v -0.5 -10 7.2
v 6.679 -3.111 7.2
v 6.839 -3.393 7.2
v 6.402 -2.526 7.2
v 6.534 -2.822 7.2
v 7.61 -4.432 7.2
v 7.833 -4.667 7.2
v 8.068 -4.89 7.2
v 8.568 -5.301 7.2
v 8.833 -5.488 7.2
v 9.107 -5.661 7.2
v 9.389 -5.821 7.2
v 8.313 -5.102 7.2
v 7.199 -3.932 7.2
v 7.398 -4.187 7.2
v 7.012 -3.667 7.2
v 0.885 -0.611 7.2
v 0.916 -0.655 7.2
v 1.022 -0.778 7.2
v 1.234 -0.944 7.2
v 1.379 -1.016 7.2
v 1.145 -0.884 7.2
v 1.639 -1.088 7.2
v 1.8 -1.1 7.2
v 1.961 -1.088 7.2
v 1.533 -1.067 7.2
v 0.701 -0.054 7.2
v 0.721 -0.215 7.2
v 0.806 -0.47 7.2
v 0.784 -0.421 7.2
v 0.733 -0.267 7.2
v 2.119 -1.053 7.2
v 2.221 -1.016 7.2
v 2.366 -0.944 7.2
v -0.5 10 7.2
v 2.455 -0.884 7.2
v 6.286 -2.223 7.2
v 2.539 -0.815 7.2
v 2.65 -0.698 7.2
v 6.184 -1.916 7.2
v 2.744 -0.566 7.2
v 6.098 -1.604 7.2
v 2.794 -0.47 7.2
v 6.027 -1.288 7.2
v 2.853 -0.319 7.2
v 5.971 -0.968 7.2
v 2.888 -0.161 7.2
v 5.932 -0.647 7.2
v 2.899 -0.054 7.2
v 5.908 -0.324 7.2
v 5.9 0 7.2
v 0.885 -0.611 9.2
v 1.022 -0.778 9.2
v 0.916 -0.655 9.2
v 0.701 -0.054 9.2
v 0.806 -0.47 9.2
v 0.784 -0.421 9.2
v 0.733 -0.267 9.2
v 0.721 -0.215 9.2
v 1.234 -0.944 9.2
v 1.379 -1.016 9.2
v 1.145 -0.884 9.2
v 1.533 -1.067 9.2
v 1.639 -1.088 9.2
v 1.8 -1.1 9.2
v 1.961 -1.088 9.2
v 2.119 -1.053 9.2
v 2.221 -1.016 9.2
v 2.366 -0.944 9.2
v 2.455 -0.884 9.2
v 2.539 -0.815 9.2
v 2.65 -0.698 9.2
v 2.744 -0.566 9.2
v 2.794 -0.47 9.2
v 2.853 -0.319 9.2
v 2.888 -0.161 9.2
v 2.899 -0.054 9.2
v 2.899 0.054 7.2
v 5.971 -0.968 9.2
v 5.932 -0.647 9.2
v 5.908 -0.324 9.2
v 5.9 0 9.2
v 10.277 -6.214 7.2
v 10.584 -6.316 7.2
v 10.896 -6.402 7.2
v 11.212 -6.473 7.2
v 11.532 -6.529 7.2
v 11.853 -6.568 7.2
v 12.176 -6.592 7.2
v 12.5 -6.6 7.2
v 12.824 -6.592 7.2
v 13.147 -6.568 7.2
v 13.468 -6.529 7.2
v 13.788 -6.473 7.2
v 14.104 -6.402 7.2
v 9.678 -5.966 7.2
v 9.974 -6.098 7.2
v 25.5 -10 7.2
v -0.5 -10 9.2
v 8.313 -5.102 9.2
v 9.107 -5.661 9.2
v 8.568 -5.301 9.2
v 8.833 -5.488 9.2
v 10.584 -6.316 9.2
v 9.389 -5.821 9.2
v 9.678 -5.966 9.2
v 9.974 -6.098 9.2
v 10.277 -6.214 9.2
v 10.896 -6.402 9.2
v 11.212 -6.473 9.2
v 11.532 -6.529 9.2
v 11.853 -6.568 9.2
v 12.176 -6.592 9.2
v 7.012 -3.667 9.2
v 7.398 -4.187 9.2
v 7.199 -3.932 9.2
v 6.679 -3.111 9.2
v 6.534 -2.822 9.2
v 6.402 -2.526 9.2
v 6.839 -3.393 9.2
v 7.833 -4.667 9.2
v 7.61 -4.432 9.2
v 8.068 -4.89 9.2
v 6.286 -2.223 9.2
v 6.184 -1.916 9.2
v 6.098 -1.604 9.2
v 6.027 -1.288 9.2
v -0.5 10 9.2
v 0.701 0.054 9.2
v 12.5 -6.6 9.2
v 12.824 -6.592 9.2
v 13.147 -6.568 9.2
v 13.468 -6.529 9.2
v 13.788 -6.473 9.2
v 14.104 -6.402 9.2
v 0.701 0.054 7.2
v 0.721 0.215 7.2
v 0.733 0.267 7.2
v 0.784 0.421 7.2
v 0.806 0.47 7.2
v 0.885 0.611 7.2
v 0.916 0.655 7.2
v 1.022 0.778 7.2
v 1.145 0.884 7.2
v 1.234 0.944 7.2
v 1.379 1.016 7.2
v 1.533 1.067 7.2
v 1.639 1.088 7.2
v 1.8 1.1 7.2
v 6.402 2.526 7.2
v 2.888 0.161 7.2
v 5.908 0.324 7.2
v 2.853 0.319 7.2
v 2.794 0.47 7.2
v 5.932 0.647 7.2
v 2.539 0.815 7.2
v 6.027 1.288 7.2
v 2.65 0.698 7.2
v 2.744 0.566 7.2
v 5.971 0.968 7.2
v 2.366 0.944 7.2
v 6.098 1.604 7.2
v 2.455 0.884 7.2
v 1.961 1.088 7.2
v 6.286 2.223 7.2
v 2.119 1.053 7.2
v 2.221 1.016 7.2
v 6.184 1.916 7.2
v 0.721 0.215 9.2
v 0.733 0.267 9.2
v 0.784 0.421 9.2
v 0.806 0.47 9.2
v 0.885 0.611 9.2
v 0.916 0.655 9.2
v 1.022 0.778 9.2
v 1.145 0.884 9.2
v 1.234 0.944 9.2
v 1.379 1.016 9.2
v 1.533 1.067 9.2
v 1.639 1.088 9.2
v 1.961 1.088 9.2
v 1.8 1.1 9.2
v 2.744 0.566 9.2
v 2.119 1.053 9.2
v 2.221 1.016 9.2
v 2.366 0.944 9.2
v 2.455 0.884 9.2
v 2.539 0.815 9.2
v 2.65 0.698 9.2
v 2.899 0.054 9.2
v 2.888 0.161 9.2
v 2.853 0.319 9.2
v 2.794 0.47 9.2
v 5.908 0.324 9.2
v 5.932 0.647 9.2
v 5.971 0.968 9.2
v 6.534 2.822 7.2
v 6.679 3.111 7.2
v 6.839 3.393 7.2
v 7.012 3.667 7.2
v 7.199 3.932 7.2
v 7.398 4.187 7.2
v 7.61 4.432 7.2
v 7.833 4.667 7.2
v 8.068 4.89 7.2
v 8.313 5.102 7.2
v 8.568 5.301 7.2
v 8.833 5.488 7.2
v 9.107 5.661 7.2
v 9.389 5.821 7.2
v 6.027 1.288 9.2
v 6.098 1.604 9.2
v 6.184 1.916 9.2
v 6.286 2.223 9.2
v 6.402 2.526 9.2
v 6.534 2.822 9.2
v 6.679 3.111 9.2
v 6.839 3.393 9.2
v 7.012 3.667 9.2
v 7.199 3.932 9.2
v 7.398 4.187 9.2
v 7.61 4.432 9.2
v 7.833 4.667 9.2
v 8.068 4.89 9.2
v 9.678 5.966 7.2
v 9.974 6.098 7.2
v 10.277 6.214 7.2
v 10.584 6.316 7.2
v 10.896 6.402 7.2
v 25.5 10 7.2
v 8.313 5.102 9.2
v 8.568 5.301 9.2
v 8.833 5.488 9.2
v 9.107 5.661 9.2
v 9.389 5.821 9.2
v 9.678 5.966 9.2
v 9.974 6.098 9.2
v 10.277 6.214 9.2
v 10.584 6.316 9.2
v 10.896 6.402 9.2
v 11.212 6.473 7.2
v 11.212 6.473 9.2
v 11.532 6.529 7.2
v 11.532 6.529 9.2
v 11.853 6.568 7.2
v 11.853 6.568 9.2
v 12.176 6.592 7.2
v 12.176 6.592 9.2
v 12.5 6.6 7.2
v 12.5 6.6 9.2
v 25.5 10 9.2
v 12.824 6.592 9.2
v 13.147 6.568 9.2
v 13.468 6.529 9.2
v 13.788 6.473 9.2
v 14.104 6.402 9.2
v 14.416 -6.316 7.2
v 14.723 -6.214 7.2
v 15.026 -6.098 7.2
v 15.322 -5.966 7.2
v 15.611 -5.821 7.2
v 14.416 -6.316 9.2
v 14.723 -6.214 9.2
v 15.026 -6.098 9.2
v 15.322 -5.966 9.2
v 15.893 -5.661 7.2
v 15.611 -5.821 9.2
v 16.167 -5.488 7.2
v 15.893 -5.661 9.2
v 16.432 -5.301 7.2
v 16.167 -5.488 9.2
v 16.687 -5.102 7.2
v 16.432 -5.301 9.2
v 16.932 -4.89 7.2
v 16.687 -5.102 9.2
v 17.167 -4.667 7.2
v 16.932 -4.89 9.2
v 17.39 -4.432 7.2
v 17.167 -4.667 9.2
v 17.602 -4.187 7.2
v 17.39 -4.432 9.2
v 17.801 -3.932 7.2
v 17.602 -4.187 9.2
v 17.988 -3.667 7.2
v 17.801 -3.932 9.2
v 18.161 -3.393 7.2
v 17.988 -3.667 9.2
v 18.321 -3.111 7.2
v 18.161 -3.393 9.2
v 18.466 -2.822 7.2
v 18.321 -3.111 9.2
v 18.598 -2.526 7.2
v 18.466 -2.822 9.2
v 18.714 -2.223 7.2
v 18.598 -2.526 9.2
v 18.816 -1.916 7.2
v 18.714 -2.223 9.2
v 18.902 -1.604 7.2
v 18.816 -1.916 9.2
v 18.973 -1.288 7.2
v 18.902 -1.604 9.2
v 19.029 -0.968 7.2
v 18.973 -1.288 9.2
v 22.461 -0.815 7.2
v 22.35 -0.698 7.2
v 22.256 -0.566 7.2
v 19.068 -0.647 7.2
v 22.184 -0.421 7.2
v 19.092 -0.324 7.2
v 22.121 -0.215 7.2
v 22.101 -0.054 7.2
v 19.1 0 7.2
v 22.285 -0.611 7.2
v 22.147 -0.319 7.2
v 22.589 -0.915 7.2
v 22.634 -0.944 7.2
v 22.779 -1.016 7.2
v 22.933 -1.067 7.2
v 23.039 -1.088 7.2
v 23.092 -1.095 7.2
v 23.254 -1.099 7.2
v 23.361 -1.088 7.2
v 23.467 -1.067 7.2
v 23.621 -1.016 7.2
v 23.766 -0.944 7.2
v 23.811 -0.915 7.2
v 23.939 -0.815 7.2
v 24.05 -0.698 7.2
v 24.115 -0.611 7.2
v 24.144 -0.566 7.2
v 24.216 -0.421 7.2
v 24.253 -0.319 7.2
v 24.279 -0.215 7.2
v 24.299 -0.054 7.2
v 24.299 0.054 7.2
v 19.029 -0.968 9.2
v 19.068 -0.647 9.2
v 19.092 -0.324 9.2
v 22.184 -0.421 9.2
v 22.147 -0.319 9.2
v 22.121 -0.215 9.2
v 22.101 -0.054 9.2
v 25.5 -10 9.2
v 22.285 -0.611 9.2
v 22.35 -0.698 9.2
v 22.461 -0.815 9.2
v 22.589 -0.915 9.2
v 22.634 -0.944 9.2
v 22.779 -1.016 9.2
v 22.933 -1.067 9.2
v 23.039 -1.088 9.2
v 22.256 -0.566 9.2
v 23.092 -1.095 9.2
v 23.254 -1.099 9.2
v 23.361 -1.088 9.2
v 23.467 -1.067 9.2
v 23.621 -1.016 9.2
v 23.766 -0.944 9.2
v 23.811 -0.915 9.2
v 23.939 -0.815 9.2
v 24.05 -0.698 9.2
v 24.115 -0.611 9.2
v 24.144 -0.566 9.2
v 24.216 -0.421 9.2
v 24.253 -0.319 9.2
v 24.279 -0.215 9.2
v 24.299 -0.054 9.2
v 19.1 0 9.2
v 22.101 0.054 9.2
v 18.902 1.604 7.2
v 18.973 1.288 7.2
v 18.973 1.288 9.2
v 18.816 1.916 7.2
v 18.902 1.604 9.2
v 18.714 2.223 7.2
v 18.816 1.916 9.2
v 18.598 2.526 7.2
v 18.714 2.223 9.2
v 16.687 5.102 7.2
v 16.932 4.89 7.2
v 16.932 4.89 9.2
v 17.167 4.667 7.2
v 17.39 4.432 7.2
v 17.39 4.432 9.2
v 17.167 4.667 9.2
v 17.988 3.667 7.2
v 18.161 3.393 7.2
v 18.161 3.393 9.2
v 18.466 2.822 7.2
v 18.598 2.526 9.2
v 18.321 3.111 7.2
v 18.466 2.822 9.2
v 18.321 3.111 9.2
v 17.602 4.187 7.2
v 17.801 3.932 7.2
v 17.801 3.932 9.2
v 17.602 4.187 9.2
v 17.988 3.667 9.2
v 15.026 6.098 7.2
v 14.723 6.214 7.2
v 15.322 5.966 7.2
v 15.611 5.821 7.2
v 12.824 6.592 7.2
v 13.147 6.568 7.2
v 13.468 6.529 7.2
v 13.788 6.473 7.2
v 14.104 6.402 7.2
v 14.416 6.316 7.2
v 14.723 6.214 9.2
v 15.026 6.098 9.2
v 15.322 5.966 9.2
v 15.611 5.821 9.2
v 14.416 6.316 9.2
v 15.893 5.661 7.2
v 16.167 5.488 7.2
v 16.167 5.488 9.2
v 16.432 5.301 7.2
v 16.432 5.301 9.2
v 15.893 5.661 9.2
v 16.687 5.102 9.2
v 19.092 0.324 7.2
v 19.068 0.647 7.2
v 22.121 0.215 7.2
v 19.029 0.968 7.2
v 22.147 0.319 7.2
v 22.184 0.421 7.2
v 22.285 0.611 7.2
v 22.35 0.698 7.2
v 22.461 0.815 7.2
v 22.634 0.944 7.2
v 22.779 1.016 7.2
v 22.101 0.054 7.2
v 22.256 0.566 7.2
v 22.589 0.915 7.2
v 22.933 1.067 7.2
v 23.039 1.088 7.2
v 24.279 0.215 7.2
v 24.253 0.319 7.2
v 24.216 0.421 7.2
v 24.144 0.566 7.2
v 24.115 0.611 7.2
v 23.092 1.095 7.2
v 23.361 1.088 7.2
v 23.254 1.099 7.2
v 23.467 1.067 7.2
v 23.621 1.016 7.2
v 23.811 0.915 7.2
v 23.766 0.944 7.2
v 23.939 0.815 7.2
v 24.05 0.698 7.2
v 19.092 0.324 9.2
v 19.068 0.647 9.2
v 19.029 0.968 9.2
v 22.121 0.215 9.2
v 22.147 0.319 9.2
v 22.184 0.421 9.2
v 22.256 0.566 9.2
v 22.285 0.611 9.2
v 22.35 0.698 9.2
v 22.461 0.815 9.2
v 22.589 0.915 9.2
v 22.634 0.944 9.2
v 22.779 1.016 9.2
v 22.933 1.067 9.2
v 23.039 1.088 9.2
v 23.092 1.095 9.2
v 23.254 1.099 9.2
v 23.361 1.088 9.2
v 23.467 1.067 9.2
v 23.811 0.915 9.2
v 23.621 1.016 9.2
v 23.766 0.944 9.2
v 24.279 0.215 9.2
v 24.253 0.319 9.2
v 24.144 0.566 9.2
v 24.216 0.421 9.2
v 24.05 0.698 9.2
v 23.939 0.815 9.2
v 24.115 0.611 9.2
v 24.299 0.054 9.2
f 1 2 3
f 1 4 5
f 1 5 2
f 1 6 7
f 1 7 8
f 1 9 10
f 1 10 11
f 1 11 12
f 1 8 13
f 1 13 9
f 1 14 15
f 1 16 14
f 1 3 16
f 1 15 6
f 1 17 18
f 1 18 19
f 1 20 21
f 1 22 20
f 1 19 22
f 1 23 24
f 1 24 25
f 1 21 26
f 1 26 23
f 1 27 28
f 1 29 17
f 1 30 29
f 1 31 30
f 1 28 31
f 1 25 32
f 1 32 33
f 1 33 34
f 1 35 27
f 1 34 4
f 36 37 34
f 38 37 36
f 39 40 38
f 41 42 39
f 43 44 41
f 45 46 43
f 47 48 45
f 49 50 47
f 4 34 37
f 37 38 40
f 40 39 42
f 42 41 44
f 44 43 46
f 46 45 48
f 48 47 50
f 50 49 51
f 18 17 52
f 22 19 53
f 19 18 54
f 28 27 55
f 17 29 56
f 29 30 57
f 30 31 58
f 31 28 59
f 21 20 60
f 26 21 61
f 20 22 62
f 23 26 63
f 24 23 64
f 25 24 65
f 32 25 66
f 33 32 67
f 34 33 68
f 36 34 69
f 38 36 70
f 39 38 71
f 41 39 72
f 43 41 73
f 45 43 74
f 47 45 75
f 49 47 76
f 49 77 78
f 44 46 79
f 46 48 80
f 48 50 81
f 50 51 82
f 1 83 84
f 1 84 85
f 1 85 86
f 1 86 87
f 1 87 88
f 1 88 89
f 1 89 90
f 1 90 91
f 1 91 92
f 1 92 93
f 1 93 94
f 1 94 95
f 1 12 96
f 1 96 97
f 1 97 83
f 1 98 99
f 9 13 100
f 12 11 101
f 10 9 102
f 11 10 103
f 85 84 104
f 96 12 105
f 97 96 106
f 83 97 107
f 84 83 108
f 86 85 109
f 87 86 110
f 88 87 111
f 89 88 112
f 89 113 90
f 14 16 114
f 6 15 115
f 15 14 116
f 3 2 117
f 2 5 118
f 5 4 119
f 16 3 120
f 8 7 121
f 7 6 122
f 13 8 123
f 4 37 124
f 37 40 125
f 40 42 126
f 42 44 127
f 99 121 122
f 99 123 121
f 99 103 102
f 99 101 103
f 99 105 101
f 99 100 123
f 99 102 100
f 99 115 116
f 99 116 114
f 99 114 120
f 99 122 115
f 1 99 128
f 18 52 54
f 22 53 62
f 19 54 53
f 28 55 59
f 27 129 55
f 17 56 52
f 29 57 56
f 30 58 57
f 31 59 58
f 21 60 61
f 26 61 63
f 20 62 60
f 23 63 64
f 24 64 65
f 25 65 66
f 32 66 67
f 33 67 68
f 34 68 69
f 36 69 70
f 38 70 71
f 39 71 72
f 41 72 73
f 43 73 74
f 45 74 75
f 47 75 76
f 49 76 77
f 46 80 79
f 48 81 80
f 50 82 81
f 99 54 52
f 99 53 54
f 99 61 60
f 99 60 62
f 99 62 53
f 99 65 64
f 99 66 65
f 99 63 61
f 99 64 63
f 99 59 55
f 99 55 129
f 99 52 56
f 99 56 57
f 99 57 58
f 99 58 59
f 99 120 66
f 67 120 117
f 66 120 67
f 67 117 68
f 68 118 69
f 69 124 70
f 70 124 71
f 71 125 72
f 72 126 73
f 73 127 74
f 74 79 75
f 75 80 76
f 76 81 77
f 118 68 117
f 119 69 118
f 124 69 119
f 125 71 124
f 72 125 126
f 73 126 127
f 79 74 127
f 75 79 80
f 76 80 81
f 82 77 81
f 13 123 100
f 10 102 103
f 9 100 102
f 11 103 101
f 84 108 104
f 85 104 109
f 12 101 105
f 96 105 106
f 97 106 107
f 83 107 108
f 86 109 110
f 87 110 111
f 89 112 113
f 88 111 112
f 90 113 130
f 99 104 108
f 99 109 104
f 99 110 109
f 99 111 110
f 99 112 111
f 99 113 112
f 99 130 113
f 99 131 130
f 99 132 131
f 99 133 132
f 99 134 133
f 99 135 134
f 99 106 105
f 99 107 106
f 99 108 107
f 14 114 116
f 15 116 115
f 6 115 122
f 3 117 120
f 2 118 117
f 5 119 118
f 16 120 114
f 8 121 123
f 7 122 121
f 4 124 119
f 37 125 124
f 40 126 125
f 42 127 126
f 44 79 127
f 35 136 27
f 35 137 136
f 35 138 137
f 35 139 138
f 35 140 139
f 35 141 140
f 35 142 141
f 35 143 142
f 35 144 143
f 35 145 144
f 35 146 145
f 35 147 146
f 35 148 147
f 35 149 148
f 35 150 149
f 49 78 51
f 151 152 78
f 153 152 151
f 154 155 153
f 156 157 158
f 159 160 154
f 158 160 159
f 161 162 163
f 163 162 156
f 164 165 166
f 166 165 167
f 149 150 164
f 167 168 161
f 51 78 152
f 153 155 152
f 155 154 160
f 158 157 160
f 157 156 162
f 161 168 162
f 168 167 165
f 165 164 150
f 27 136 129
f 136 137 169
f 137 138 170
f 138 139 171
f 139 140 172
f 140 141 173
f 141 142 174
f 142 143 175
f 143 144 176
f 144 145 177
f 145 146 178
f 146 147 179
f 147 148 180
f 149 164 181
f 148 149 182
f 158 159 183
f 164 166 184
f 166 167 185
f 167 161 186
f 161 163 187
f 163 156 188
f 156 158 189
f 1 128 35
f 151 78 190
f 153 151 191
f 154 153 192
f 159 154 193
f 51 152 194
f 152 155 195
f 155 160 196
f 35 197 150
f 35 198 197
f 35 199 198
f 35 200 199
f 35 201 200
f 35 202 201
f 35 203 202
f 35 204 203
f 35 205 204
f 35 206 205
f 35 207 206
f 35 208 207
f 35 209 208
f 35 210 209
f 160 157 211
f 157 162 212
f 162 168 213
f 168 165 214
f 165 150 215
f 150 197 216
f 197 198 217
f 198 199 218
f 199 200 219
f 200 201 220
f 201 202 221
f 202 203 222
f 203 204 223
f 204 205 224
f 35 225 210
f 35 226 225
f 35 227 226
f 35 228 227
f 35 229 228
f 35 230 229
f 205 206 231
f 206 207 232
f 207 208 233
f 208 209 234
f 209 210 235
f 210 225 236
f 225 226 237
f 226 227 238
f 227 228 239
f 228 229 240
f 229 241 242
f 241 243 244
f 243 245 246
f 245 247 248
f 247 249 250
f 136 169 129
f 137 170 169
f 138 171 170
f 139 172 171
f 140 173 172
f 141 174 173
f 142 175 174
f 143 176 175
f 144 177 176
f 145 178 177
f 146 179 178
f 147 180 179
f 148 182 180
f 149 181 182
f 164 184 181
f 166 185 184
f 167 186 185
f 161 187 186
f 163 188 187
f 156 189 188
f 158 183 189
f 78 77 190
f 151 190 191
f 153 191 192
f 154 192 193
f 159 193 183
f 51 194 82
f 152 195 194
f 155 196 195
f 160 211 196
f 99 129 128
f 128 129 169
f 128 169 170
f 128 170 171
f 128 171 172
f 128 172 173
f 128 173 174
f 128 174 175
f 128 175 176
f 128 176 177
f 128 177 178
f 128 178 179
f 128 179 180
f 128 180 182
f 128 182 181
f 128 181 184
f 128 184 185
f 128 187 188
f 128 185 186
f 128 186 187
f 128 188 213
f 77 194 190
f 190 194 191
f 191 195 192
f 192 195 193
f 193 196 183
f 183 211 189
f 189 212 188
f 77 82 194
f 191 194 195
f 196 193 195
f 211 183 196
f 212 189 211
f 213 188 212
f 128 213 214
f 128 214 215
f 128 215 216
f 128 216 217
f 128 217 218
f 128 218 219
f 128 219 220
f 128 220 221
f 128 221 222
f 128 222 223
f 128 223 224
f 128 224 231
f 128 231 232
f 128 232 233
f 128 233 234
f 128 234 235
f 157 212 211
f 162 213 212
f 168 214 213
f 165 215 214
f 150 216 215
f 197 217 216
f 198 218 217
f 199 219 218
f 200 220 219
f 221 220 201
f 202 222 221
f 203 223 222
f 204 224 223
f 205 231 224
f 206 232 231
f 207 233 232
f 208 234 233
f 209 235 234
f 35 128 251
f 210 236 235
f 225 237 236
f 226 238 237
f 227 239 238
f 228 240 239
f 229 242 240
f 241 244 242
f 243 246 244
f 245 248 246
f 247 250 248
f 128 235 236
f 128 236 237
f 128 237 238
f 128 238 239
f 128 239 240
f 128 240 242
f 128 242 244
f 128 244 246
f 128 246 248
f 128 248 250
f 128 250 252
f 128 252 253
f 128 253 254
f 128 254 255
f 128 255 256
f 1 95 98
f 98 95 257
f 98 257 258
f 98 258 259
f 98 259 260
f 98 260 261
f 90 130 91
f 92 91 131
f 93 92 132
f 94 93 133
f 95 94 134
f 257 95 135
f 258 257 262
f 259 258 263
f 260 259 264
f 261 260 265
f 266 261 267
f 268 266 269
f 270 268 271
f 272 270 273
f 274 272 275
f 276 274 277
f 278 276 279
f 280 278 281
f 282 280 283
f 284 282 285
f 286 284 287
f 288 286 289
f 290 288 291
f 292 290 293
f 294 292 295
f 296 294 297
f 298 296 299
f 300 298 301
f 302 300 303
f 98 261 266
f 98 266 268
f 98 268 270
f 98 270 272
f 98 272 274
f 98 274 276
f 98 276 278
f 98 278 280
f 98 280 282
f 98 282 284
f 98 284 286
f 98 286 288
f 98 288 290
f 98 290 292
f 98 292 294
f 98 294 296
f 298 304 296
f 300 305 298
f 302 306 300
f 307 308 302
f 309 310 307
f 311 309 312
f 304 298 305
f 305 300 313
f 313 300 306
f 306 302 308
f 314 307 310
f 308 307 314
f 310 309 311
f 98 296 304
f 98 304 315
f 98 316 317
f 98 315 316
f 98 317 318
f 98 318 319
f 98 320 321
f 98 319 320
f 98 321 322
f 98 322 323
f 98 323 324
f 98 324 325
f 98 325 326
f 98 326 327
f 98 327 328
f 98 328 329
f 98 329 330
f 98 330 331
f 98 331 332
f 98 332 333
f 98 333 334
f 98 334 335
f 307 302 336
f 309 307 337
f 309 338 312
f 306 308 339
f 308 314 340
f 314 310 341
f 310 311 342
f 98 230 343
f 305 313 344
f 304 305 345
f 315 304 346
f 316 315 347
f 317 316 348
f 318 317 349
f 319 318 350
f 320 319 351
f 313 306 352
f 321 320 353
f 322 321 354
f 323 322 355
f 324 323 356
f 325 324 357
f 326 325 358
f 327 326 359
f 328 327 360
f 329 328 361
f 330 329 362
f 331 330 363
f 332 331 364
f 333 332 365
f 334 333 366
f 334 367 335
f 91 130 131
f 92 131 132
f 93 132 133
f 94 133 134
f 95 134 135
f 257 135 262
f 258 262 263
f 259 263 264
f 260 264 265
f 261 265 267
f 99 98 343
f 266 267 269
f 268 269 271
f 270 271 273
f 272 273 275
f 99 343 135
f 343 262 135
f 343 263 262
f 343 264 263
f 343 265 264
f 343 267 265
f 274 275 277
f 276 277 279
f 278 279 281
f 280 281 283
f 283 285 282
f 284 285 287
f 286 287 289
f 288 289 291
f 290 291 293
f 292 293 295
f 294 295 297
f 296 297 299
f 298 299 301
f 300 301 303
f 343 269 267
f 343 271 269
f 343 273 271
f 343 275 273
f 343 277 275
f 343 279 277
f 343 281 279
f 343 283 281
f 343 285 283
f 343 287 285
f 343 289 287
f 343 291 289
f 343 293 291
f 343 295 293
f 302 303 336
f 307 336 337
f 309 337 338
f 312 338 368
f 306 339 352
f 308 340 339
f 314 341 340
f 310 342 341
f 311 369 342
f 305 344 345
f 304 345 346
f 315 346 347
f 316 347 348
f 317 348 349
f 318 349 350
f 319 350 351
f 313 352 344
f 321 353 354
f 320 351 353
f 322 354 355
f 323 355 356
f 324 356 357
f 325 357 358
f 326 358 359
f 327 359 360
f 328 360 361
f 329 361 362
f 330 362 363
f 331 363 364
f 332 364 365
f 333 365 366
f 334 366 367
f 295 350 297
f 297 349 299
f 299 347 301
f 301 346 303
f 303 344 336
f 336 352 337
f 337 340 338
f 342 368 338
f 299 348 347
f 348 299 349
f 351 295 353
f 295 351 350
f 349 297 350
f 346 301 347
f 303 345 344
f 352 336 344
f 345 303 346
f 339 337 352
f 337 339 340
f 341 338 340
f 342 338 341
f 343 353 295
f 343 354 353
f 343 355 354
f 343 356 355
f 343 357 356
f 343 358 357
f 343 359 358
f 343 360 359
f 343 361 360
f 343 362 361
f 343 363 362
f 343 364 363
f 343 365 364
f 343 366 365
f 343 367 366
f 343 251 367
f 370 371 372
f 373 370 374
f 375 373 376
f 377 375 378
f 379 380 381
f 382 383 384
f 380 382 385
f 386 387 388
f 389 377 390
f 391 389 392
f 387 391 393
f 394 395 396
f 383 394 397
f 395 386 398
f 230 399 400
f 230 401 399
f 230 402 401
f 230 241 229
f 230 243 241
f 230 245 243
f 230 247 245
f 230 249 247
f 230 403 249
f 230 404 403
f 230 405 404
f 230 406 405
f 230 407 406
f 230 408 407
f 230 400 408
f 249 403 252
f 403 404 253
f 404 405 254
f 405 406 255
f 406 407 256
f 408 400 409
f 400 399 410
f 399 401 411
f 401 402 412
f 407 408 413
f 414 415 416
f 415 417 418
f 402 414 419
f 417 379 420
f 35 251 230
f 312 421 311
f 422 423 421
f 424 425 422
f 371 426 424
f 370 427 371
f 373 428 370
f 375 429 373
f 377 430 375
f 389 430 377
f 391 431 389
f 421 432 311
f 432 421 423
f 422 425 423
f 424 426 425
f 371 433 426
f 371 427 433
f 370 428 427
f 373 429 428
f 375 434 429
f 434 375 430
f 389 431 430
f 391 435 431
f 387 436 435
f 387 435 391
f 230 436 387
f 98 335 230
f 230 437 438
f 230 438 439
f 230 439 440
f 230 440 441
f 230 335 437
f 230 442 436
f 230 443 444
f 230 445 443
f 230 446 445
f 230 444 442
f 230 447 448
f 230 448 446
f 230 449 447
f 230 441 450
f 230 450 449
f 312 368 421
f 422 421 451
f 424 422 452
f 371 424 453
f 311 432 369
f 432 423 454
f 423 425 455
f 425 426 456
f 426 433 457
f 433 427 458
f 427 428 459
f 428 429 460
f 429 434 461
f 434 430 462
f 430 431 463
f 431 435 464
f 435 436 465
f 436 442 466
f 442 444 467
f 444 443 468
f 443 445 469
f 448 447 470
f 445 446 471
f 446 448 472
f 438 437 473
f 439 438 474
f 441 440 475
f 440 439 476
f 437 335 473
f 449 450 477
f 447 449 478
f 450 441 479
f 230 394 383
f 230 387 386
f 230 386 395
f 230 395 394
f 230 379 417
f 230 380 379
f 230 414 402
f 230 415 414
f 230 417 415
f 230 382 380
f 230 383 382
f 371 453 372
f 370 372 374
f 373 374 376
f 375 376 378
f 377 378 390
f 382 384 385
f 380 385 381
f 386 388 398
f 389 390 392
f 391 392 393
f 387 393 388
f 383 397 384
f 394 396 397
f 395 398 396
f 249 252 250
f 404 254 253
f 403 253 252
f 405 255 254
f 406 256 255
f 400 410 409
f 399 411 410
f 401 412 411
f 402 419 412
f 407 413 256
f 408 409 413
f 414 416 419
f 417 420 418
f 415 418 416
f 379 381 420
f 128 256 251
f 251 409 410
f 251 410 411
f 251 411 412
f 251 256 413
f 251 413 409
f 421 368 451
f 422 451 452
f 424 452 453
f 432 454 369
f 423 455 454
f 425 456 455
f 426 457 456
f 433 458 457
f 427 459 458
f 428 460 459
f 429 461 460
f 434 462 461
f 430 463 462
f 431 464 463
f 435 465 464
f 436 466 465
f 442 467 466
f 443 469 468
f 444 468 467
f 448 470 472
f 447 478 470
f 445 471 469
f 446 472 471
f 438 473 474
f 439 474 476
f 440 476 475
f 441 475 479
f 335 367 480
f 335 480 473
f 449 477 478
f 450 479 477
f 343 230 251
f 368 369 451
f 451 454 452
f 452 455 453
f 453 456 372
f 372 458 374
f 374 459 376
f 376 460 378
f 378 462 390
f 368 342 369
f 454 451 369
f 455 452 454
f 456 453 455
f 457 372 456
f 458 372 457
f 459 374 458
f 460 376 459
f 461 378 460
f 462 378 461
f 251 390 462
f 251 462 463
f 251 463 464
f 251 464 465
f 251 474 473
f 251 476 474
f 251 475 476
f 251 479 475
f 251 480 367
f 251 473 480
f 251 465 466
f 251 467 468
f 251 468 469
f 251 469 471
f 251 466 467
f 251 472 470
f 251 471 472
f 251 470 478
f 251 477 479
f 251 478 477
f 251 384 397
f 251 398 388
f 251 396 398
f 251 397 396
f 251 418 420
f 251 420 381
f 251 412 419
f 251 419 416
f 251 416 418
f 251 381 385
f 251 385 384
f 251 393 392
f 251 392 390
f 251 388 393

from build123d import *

# Parameters (mm, degrees)
CAP_PLATE_26X20X2_START       = 7.2
CAP_PLATE_26X20X2_PROFILE_W   = 26
CAP_PLATE_26X20X2_PROFILE_H   = 20
CAP_PLATE_26X20X2_PROFILE_R   = 6.6
CAP_PLATE_26X20X2_PROFILE_R_2 = 1.1
CAP_PLATE_26X20X2_DEPTH       = 2


with BuildPart() as part:
    # Cap_plate_26x20x2_Profile → Cap_plate_26x20x2 (new body)
    with BuildSketch(Plane.XY.offset(CAP_PLATE_26X20X2_START)):
        with Locations((12.5, 0)):
            Rectangle(CAP_PLATE_26X20X2_PROFILE_W, CAP_PLATE_26X20X2_PROFILE_H)
        with Locations((12.5, 0)):
            Circle(CAP_PLATE_26X20X2_PROFILE_R, mode=Mode.SUBTRACT)
        with Locations((1.8, 0)):
            Circle(CAP_PLATE_26X20X2_PROFILE_R_2, mode=Mode.SUBTRACT)
        with Locations((23.2, 0)):
            Circle(CAP_PLATE_26X20X2_PROFILE_R_2, mode=Mode.SUBTRACT)
    extrude(amount=CAP_PLATE_26X20X2_DEPTH)


solid = part.part
